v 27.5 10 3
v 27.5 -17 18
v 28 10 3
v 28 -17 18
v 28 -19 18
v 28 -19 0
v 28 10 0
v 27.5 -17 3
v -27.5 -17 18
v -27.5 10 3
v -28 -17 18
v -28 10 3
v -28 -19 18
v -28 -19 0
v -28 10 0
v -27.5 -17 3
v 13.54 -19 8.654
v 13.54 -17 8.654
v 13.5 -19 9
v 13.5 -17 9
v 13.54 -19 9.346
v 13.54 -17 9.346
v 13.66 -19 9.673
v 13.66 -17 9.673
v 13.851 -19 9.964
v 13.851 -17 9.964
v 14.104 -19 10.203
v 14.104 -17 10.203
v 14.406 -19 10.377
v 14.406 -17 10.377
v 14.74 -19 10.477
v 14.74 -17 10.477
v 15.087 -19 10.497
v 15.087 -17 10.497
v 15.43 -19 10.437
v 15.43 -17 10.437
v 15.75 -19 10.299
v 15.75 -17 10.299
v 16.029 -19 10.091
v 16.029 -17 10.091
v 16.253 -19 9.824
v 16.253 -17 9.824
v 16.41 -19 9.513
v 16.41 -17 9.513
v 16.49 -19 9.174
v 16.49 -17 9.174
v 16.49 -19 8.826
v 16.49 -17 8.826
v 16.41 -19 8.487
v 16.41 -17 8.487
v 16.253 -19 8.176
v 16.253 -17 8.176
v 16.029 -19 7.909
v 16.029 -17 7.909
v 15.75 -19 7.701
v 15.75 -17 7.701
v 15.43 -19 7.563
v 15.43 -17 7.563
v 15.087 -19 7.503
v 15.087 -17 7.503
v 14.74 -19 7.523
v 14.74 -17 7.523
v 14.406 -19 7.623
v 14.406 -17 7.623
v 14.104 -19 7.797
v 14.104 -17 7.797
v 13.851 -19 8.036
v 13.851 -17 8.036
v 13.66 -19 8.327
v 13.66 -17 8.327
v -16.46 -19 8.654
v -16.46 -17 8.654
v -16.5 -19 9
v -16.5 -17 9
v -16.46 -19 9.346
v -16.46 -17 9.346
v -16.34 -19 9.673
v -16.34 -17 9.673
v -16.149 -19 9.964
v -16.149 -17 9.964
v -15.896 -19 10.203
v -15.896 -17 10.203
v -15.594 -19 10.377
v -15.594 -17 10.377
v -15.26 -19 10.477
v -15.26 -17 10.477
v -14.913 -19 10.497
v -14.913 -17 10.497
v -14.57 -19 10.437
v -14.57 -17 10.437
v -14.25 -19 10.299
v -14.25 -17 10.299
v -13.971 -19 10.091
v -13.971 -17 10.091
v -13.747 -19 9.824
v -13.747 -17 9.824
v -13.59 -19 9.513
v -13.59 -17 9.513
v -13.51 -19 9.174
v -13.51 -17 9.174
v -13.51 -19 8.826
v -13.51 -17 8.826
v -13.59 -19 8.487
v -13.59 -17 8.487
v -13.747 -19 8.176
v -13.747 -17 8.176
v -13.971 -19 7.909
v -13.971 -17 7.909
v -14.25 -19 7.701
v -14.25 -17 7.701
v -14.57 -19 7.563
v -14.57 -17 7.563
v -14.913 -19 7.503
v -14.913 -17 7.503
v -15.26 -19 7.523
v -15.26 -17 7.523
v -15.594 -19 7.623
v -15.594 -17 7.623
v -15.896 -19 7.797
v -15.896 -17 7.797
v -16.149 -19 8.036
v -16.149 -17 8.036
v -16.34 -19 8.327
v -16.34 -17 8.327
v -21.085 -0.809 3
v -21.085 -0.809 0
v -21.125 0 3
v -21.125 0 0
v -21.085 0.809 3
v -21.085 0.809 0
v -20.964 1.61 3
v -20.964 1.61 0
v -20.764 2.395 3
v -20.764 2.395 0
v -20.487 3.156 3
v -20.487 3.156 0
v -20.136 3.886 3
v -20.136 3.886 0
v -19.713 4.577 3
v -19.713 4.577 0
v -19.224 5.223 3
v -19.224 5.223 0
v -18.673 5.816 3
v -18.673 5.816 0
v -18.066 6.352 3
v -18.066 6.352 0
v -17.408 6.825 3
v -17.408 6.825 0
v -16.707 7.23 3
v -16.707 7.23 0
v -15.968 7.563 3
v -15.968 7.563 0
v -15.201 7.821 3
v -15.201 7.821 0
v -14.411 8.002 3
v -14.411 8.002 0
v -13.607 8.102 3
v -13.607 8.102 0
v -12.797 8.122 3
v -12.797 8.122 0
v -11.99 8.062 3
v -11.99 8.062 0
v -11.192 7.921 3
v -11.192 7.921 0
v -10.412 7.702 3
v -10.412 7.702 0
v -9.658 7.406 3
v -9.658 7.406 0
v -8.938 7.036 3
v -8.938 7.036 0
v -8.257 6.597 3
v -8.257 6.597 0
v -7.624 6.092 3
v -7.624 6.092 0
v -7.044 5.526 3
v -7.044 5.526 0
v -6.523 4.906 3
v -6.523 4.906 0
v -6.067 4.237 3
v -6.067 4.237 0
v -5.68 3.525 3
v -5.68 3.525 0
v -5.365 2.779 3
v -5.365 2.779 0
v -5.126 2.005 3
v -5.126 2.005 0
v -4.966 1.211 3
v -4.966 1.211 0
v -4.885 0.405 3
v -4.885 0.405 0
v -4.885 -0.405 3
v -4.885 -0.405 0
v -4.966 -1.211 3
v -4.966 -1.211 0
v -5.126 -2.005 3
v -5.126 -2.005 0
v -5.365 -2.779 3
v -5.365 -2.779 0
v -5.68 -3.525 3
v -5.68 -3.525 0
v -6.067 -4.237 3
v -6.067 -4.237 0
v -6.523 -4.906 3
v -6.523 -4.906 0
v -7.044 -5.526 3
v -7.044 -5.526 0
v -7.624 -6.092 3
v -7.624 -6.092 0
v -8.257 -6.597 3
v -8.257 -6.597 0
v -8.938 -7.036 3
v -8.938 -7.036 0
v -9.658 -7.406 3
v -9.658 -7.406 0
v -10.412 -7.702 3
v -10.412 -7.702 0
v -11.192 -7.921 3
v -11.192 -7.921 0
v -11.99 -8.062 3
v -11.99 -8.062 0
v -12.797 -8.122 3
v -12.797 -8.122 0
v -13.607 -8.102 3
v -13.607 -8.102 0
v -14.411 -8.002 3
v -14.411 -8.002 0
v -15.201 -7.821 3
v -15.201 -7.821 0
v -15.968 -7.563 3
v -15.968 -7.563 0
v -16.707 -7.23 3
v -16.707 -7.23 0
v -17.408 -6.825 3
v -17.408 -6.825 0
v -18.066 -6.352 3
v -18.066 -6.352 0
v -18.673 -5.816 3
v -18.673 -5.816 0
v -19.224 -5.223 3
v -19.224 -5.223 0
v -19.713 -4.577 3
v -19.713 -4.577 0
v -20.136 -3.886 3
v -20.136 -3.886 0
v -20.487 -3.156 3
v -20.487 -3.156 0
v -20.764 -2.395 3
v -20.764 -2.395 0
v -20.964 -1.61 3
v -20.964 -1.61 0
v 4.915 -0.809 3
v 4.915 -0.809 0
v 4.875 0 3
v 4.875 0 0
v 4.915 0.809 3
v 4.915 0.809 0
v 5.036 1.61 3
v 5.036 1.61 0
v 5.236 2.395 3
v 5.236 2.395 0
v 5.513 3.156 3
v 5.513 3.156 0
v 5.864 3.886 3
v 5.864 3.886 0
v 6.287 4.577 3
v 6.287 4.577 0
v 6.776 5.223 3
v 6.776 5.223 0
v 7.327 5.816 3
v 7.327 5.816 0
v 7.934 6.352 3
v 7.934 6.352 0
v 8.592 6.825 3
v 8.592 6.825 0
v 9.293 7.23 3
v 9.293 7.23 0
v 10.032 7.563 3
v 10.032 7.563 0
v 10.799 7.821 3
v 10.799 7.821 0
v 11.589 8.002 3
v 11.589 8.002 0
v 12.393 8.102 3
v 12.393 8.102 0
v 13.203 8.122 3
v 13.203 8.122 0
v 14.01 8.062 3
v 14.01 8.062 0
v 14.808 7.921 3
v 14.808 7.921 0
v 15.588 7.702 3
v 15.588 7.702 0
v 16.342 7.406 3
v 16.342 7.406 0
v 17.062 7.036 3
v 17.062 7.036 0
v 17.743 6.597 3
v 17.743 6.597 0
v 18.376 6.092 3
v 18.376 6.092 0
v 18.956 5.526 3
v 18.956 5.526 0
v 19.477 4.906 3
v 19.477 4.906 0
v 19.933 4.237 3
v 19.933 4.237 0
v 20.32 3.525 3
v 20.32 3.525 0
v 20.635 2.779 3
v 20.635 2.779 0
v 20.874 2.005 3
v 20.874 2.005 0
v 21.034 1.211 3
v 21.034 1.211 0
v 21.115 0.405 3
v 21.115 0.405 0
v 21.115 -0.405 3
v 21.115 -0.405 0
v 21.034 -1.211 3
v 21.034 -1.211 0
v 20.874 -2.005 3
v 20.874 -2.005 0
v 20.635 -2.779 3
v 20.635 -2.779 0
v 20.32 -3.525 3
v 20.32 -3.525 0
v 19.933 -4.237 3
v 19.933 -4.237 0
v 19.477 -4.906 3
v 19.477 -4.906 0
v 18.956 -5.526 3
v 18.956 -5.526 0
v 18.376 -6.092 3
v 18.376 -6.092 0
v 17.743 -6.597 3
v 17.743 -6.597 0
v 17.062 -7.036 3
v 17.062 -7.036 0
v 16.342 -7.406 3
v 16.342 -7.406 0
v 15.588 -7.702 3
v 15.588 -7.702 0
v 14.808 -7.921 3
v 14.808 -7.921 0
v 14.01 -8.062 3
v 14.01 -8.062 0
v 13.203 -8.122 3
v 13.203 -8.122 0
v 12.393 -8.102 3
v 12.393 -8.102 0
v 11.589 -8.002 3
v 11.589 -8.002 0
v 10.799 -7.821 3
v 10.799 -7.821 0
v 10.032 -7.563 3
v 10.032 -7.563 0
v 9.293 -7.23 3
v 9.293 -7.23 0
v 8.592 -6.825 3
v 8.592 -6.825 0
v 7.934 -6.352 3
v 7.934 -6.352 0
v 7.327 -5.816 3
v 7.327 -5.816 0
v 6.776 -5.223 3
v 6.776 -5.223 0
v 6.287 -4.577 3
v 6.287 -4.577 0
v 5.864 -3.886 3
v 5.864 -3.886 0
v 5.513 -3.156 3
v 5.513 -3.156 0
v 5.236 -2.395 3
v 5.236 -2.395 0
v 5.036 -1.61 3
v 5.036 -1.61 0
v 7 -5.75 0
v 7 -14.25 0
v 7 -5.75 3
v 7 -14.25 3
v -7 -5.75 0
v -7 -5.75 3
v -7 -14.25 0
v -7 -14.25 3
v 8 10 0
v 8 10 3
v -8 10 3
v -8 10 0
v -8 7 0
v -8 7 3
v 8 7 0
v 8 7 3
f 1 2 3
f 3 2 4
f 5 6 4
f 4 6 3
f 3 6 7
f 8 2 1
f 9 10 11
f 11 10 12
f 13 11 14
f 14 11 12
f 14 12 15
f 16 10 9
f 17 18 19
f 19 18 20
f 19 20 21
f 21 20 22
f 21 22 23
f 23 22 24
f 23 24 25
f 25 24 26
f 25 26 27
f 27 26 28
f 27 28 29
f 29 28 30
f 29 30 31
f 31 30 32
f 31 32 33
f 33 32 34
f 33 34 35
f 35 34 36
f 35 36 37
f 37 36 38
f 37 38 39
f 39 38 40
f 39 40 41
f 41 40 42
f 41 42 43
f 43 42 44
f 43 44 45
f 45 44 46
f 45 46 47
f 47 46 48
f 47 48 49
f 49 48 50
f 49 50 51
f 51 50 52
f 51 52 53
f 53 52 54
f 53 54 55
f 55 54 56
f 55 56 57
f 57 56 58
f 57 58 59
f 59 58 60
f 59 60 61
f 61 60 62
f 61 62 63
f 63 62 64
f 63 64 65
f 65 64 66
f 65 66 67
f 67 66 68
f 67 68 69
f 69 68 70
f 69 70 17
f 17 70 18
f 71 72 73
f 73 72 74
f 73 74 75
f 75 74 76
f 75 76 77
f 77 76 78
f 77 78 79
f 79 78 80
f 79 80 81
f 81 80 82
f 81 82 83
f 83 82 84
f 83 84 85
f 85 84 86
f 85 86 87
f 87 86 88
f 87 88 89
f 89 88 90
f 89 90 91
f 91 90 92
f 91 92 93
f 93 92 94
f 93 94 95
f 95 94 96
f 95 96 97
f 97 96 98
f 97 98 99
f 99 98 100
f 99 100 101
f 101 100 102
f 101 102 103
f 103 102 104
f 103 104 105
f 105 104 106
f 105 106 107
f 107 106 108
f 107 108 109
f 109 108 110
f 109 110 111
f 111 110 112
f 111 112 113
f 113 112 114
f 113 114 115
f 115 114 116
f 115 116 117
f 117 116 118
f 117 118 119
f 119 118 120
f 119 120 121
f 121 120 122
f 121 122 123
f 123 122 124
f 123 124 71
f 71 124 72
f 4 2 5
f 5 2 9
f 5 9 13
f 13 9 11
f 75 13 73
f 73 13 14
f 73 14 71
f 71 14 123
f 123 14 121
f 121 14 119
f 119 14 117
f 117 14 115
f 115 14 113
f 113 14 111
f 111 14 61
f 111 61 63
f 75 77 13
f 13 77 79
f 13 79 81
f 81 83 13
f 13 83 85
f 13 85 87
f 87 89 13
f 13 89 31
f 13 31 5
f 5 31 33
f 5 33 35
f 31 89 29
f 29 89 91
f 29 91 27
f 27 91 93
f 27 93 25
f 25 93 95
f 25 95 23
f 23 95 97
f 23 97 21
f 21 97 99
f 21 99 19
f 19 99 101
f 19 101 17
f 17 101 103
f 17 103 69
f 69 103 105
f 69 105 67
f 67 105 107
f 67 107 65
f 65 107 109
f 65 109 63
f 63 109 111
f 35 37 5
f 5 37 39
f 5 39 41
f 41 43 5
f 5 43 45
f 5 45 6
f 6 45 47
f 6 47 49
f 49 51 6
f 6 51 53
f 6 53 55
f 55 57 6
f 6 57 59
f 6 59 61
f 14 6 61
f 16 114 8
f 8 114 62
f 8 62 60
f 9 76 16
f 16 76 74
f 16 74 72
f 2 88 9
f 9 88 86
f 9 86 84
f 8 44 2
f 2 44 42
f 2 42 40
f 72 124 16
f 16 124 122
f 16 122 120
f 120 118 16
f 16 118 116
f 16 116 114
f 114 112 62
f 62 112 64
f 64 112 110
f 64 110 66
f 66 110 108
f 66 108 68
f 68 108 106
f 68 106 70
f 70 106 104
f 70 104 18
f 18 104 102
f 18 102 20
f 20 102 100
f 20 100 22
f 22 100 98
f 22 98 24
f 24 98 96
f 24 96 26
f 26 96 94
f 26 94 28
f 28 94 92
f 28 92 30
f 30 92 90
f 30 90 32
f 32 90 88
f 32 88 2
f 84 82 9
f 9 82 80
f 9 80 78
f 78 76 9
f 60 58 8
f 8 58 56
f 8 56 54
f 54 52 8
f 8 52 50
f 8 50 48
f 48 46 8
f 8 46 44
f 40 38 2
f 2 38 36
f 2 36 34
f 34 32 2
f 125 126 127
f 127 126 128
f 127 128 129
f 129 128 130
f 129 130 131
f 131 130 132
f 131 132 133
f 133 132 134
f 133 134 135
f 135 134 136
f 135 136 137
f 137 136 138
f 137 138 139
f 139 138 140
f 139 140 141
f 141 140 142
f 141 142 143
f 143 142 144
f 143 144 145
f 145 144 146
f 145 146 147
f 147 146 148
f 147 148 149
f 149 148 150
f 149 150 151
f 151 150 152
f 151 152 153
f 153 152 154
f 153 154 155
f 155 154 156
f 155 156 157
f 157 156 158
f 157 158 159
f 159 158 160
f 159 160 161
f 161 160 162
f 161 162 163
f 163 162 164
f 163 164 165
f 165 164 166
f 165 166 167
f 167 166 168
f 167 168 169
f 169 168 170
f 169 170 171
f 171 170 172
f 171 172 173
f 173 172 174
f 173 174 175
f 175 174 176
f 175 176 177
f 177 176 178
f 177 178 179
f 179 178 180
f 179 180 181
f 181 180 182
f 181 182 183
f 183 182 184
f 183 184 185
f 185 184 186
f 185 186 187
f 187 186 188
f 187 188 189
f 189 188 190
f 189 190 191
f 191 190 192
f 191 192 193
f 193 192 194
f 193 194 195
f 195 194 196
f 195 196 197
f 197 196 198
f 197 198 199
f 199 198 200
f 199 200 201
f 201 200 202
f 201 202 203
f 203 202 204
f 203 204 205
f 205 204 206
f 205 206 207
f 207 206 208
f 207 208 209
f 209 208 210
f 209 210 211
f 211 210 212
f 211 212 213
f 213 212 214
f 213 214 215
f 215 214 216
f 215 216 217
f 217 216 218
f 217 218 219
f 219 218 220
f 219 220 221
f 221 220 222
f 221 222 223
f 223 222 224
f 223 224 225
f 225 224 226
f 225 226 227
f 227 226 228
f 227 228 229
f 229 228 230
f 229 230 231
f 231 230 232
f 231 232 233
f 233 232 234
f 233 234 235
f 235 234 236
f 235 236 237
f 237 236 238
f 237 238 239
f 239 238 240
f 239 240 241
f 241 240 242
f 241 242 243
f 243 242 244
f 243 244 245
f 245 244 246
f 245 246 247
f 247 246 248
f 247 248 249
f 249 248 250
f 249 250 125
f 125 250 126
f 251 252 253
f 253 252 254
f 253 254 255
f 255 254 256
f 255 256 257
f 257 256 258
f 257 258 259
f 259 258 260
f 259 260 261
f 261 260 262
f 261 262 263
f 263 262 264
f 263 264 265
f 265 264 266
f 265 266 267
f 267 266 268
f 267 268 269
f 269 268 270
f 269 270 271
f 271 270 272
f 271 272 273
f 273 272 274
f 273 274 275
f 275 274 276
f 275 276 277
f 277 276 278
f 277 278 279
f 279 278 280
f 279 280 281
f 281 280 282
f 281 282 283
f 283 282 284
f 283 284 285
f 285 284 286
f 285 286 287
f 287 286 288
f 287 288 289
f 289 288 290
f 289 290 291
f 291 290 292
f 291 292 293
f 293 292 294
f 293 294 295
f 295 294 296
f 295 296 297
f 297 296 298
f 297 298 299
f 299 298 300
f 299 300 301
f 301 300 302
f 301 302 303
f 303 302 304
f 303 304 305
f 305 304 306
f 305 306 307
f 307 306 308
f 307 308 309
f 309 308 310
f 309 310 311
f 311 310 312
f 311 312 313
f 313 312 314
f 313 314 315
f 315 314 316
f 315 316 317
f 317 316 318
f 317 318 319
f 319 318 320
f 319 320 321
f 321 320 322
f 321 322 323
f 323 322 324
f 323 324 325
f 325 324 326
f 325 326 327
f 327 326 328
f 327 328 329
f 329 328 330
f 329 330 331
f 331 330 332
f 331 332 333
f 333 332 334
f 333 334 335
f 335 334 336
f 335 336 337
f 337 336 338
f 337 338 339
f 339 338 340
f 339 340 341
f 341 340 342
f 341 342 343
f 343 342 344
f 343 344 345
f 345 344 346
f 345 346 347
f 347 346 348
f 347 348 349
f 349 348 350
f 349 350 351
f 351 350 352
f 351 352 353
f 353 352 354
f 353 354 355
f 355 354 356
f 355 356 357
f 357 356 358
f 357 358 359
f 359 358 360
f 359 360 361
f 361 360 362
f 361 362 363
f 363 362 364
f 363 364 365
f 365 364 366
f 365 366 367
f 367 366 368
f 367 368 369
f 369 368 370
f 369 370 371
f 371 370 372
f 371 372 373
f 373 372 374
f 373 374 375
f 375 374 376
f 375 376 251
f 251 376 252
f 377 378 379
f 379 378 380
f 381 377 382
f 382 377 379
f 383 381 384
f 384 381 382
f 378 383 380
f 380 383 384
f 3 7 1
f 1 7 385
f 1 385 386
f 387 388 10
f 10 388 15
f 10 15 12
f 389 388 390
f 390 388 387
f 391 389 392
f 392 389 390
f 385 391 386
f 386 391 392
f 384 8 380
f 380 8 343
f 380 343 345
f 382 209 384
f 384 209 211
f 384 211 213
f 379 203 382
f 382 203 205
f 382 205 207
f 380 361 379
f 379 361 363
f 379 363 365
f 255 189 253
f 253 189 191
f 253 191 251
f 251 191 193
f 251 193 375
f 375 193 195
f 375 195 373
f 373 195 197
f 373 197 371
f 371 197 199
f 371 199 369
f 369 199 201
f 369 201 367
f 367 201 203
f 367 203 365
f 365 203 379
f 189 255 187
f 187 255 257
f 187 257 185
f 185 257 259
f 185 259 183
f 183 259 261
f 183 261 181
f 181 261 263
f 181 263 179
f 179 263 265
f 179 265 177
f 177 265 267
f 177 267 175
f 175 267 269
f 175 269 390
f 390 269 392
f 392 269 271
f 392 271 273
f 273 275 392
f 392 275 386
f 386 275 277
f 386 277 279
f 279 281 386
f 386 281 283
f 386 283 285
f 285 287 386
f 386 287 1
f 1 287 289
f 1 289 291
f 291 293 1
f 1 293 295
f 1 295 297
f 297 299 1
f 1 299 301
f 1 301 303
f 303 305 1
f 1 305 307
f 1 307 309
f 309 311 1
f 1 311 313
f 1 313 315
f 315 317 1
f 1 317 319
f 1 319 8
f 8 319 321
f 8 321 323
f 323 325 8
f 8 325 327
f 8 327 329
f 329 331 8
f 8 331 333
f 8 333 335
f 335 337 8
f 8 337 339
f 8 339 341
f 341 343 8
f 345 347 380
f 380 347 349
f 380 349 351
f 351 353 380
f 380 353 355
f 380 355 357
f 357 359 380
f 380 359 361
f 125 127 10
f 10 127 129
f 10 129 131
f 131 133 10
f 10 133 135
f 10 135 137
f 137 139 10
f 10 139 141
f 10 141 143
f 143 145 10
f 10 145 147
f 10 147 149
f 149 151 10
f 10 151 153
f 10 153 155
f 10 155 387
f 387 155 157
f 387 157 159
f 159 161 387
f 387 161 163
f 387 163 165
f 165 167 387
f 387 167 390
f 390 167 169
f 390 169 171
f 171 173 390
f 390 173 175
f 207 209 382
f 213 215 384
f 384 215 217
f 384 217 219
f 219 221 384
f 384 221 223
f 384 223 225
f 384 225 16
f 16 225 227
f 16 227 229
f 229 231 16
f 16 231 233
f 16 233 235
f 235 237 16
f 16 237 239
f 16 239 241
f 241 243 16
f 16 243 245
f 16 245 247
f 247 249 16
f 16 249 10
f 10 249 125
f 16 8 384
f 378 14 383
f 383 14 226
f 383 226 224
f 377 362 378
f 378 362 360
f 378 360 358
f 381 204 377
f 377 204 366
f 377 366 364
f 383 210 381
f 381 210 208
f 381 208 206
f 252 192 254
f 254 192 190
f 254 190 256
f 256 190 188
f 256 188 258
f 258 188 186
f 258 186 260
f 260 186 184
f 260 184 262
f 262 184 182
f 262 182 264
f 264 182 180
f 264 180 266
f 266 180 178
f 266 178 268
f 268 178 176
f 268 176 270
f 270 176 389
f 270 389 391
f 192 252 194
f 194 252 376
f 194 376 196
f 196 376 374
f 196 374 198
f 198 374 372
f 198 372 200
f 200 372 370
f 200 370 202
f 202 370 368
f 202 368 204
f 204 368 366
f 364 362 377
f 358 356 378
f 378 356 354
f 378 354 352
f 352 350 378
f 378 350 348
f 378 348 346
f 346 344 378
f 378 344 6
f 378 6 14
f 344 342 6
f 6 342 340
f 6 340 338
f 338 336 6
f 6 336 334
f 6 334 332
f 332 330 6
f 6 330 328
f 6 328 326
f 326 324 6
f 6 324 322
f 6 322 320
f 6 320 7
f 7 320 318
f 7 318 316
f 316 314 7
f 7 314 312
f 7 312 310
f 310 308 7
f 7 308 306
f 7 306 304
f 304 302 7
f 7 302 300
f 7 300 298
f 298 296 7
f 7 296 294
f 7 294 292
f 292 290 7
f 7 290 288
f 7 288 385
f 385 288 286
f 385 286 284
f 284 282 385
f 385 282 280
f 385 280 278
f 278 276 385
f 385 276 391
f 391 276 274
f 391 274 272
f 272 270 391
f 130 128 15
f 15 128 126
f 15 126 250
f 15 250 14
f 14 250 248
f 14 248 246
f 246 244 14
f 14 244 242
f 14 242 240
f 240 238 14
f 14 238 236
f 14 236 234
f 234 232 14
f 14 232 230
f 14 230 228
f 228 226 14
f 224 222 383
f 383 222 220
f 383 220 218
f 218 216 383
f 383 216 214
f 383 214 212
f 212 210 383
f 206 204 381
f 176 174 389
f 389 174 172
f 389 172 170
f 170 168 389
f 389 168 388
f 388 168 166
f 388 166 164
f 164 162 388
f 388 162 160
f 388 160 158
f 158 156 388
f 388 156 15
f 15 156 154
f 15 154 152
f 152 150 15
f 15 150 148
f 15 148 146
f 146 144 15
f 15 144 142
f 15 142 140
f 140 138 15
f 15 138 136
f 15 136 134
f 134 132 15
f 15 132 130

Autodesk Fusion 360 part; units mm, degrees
sketch "Sketch1" plane through (0, 0, 0) normal (0, 0, 1) x (1, 0, 0)
  line L0 (27.5, -10) -> (-27.5, -10)
  line L1 (-27.5, -10) -> (-27.5, 10)
  line L2 (-27.5, 10) -> (27.5, 10)
  line L3 (27.5, 10) -> (27.5, -10)
  line L4 (27.5, -10) -> (-27.5, 10) construction
  line L5 (-27.5, -10) -> (27.5, 10) construction
  line L6 (0, 0) -> (13, 0) construction
  line L7 (0, 0) -> (-13, 0) construction
  circle A0 centre (13, 0) radius 8.125
  circle A1 centre (-13, 0) radius 8.125
  line L8 (-27.5, -10) -> (27.5, -10)
  line L9 (27.5, -10) -> (27.5, -17)
  line L10 (27.5, -17) -> (-27.5, -17)
  line L11 (-27.5, -17) -> (-27.5, -10)
  line L12 (0, 10) -> (-8, 10)
  line L13 (-8, 10) -> (8, 10)
  line L14 (8, 10) -> (8, 7)
  line L15 (8, 7) -> (-8, 7)
  line L16 (-8, 7) -> (-8, 10)
  line L17 (-7, -5.75) -> (7, -5.75)
  line L18 (7, -5.75) -> (7, -14.25)
  line L19 (7, -14.25) -> (-7, -14.25)
  line L20 (-7, -14.25) -> (-7, -5.75)
  line L21 (-7, -5.75) -> (7, -14.25) construction
  line L22 (7, -5.75) -> (-7, -14.25) construction
  point P0 (0, -10)
  dimension "d1" = 55
  dimension "d2" = 20
  dimension "d3" = 13
  dimension "d4" = 13
  dimension "d5" = 16.25
  dimension "d6" = 16.25
  dimension "d7" = 7
  dimension "d8" = 8
  dimension "d9" = 16
  dimension "d10" = 3
  dimension "d11" = 14
  dimension "d12" = 8.5
extrude "Extrude1" add sketch "Sketch1" along normal blind 3 contours L0 L8 L9 L10 L11 L18 L19 L20 | L0 L1 L2 L3 L8 L14 L15 L16 L17 L18 L20
sketch "Sketch2" plane through (0, -17, 0) normal (0, -1, 0) x (1, 0, 0)
  line L0 (-27.5, 0) -> (27.5, 0)
  line L1 (27.5, 0) -> (27.5, 3)
  line L2 (27.5, 3) -> (-27.5, 3)
  line L3 (-27.5, 3) -> (-27.5, 0)
  line L4 (-27.5, 0) -> (27.5, 0)
  line L5 (27.5, 0) -> (27.5, 18)
  line L6 (27.5, 18) -> (-27.5, 18)
  line L7 (-27.5, 18) -> (-27.5, 0)
  line L8 (-27.5, 18) -> (27.5, 0) construction
  line L9 (-27.5, 0) -> (27.5, 18) construction
  line L10 (0, 9) -> (15, 9) construction
  line L11 (0, 9) -> (-15, 9) construction
  circle A0 centre (15, 9) radius 1.5
  circle A1 centre (-15, 9) radius 1.5
  dimension "d15" = 55
  dimension "d16" = 18
  dimension "d17" = 15
  dimension "d18" = 15
  dimension "d19" = 3
  dimension "d20" = 3
extrude "Extrude2" add sketch "Sketch2" along normal blind 2
sketch "Sketch3" plane through (-27.5, 0, 0) normal (-1, 0, 0) x (0, -1, 0)
  line L0 (-10, 0) -> (19, 0)
  line L1 (19, 0) -> (19, 18)
  line L2 (19, 18) -> (17, 18)
  line L3 (17, 18) -> (17, 3)
  line L4 (17, 3) -> (-10, 3)
  line L5 (-10, 3) -> (-10, 0)
  line L6 (17, 18) -> (-10, 3)
extrude "Extrude3" add sketch "Sketch3" along normal blind 0.5
sketch "Sketch4" plane through (27.5, 0, 0) normal (1, 0, 0) x (0, 1, 0)
  line L0 (-19, 0) -> (10, 0)
  line L1 (10, 0) -> (10, 3)
  line L2 (10, 3) -> (-17, 3)
  line L3 (-17, 3) -> (-17, 18)
  line L4 (-17, 18) -> (-19, 18)
  line L5 (-19, 18) -> (-19, 0)
  line L6 (-17, 18) -> (10, 3)
extrude "Extrude4" add sketch "Sketch4" along normal blind 0.5
